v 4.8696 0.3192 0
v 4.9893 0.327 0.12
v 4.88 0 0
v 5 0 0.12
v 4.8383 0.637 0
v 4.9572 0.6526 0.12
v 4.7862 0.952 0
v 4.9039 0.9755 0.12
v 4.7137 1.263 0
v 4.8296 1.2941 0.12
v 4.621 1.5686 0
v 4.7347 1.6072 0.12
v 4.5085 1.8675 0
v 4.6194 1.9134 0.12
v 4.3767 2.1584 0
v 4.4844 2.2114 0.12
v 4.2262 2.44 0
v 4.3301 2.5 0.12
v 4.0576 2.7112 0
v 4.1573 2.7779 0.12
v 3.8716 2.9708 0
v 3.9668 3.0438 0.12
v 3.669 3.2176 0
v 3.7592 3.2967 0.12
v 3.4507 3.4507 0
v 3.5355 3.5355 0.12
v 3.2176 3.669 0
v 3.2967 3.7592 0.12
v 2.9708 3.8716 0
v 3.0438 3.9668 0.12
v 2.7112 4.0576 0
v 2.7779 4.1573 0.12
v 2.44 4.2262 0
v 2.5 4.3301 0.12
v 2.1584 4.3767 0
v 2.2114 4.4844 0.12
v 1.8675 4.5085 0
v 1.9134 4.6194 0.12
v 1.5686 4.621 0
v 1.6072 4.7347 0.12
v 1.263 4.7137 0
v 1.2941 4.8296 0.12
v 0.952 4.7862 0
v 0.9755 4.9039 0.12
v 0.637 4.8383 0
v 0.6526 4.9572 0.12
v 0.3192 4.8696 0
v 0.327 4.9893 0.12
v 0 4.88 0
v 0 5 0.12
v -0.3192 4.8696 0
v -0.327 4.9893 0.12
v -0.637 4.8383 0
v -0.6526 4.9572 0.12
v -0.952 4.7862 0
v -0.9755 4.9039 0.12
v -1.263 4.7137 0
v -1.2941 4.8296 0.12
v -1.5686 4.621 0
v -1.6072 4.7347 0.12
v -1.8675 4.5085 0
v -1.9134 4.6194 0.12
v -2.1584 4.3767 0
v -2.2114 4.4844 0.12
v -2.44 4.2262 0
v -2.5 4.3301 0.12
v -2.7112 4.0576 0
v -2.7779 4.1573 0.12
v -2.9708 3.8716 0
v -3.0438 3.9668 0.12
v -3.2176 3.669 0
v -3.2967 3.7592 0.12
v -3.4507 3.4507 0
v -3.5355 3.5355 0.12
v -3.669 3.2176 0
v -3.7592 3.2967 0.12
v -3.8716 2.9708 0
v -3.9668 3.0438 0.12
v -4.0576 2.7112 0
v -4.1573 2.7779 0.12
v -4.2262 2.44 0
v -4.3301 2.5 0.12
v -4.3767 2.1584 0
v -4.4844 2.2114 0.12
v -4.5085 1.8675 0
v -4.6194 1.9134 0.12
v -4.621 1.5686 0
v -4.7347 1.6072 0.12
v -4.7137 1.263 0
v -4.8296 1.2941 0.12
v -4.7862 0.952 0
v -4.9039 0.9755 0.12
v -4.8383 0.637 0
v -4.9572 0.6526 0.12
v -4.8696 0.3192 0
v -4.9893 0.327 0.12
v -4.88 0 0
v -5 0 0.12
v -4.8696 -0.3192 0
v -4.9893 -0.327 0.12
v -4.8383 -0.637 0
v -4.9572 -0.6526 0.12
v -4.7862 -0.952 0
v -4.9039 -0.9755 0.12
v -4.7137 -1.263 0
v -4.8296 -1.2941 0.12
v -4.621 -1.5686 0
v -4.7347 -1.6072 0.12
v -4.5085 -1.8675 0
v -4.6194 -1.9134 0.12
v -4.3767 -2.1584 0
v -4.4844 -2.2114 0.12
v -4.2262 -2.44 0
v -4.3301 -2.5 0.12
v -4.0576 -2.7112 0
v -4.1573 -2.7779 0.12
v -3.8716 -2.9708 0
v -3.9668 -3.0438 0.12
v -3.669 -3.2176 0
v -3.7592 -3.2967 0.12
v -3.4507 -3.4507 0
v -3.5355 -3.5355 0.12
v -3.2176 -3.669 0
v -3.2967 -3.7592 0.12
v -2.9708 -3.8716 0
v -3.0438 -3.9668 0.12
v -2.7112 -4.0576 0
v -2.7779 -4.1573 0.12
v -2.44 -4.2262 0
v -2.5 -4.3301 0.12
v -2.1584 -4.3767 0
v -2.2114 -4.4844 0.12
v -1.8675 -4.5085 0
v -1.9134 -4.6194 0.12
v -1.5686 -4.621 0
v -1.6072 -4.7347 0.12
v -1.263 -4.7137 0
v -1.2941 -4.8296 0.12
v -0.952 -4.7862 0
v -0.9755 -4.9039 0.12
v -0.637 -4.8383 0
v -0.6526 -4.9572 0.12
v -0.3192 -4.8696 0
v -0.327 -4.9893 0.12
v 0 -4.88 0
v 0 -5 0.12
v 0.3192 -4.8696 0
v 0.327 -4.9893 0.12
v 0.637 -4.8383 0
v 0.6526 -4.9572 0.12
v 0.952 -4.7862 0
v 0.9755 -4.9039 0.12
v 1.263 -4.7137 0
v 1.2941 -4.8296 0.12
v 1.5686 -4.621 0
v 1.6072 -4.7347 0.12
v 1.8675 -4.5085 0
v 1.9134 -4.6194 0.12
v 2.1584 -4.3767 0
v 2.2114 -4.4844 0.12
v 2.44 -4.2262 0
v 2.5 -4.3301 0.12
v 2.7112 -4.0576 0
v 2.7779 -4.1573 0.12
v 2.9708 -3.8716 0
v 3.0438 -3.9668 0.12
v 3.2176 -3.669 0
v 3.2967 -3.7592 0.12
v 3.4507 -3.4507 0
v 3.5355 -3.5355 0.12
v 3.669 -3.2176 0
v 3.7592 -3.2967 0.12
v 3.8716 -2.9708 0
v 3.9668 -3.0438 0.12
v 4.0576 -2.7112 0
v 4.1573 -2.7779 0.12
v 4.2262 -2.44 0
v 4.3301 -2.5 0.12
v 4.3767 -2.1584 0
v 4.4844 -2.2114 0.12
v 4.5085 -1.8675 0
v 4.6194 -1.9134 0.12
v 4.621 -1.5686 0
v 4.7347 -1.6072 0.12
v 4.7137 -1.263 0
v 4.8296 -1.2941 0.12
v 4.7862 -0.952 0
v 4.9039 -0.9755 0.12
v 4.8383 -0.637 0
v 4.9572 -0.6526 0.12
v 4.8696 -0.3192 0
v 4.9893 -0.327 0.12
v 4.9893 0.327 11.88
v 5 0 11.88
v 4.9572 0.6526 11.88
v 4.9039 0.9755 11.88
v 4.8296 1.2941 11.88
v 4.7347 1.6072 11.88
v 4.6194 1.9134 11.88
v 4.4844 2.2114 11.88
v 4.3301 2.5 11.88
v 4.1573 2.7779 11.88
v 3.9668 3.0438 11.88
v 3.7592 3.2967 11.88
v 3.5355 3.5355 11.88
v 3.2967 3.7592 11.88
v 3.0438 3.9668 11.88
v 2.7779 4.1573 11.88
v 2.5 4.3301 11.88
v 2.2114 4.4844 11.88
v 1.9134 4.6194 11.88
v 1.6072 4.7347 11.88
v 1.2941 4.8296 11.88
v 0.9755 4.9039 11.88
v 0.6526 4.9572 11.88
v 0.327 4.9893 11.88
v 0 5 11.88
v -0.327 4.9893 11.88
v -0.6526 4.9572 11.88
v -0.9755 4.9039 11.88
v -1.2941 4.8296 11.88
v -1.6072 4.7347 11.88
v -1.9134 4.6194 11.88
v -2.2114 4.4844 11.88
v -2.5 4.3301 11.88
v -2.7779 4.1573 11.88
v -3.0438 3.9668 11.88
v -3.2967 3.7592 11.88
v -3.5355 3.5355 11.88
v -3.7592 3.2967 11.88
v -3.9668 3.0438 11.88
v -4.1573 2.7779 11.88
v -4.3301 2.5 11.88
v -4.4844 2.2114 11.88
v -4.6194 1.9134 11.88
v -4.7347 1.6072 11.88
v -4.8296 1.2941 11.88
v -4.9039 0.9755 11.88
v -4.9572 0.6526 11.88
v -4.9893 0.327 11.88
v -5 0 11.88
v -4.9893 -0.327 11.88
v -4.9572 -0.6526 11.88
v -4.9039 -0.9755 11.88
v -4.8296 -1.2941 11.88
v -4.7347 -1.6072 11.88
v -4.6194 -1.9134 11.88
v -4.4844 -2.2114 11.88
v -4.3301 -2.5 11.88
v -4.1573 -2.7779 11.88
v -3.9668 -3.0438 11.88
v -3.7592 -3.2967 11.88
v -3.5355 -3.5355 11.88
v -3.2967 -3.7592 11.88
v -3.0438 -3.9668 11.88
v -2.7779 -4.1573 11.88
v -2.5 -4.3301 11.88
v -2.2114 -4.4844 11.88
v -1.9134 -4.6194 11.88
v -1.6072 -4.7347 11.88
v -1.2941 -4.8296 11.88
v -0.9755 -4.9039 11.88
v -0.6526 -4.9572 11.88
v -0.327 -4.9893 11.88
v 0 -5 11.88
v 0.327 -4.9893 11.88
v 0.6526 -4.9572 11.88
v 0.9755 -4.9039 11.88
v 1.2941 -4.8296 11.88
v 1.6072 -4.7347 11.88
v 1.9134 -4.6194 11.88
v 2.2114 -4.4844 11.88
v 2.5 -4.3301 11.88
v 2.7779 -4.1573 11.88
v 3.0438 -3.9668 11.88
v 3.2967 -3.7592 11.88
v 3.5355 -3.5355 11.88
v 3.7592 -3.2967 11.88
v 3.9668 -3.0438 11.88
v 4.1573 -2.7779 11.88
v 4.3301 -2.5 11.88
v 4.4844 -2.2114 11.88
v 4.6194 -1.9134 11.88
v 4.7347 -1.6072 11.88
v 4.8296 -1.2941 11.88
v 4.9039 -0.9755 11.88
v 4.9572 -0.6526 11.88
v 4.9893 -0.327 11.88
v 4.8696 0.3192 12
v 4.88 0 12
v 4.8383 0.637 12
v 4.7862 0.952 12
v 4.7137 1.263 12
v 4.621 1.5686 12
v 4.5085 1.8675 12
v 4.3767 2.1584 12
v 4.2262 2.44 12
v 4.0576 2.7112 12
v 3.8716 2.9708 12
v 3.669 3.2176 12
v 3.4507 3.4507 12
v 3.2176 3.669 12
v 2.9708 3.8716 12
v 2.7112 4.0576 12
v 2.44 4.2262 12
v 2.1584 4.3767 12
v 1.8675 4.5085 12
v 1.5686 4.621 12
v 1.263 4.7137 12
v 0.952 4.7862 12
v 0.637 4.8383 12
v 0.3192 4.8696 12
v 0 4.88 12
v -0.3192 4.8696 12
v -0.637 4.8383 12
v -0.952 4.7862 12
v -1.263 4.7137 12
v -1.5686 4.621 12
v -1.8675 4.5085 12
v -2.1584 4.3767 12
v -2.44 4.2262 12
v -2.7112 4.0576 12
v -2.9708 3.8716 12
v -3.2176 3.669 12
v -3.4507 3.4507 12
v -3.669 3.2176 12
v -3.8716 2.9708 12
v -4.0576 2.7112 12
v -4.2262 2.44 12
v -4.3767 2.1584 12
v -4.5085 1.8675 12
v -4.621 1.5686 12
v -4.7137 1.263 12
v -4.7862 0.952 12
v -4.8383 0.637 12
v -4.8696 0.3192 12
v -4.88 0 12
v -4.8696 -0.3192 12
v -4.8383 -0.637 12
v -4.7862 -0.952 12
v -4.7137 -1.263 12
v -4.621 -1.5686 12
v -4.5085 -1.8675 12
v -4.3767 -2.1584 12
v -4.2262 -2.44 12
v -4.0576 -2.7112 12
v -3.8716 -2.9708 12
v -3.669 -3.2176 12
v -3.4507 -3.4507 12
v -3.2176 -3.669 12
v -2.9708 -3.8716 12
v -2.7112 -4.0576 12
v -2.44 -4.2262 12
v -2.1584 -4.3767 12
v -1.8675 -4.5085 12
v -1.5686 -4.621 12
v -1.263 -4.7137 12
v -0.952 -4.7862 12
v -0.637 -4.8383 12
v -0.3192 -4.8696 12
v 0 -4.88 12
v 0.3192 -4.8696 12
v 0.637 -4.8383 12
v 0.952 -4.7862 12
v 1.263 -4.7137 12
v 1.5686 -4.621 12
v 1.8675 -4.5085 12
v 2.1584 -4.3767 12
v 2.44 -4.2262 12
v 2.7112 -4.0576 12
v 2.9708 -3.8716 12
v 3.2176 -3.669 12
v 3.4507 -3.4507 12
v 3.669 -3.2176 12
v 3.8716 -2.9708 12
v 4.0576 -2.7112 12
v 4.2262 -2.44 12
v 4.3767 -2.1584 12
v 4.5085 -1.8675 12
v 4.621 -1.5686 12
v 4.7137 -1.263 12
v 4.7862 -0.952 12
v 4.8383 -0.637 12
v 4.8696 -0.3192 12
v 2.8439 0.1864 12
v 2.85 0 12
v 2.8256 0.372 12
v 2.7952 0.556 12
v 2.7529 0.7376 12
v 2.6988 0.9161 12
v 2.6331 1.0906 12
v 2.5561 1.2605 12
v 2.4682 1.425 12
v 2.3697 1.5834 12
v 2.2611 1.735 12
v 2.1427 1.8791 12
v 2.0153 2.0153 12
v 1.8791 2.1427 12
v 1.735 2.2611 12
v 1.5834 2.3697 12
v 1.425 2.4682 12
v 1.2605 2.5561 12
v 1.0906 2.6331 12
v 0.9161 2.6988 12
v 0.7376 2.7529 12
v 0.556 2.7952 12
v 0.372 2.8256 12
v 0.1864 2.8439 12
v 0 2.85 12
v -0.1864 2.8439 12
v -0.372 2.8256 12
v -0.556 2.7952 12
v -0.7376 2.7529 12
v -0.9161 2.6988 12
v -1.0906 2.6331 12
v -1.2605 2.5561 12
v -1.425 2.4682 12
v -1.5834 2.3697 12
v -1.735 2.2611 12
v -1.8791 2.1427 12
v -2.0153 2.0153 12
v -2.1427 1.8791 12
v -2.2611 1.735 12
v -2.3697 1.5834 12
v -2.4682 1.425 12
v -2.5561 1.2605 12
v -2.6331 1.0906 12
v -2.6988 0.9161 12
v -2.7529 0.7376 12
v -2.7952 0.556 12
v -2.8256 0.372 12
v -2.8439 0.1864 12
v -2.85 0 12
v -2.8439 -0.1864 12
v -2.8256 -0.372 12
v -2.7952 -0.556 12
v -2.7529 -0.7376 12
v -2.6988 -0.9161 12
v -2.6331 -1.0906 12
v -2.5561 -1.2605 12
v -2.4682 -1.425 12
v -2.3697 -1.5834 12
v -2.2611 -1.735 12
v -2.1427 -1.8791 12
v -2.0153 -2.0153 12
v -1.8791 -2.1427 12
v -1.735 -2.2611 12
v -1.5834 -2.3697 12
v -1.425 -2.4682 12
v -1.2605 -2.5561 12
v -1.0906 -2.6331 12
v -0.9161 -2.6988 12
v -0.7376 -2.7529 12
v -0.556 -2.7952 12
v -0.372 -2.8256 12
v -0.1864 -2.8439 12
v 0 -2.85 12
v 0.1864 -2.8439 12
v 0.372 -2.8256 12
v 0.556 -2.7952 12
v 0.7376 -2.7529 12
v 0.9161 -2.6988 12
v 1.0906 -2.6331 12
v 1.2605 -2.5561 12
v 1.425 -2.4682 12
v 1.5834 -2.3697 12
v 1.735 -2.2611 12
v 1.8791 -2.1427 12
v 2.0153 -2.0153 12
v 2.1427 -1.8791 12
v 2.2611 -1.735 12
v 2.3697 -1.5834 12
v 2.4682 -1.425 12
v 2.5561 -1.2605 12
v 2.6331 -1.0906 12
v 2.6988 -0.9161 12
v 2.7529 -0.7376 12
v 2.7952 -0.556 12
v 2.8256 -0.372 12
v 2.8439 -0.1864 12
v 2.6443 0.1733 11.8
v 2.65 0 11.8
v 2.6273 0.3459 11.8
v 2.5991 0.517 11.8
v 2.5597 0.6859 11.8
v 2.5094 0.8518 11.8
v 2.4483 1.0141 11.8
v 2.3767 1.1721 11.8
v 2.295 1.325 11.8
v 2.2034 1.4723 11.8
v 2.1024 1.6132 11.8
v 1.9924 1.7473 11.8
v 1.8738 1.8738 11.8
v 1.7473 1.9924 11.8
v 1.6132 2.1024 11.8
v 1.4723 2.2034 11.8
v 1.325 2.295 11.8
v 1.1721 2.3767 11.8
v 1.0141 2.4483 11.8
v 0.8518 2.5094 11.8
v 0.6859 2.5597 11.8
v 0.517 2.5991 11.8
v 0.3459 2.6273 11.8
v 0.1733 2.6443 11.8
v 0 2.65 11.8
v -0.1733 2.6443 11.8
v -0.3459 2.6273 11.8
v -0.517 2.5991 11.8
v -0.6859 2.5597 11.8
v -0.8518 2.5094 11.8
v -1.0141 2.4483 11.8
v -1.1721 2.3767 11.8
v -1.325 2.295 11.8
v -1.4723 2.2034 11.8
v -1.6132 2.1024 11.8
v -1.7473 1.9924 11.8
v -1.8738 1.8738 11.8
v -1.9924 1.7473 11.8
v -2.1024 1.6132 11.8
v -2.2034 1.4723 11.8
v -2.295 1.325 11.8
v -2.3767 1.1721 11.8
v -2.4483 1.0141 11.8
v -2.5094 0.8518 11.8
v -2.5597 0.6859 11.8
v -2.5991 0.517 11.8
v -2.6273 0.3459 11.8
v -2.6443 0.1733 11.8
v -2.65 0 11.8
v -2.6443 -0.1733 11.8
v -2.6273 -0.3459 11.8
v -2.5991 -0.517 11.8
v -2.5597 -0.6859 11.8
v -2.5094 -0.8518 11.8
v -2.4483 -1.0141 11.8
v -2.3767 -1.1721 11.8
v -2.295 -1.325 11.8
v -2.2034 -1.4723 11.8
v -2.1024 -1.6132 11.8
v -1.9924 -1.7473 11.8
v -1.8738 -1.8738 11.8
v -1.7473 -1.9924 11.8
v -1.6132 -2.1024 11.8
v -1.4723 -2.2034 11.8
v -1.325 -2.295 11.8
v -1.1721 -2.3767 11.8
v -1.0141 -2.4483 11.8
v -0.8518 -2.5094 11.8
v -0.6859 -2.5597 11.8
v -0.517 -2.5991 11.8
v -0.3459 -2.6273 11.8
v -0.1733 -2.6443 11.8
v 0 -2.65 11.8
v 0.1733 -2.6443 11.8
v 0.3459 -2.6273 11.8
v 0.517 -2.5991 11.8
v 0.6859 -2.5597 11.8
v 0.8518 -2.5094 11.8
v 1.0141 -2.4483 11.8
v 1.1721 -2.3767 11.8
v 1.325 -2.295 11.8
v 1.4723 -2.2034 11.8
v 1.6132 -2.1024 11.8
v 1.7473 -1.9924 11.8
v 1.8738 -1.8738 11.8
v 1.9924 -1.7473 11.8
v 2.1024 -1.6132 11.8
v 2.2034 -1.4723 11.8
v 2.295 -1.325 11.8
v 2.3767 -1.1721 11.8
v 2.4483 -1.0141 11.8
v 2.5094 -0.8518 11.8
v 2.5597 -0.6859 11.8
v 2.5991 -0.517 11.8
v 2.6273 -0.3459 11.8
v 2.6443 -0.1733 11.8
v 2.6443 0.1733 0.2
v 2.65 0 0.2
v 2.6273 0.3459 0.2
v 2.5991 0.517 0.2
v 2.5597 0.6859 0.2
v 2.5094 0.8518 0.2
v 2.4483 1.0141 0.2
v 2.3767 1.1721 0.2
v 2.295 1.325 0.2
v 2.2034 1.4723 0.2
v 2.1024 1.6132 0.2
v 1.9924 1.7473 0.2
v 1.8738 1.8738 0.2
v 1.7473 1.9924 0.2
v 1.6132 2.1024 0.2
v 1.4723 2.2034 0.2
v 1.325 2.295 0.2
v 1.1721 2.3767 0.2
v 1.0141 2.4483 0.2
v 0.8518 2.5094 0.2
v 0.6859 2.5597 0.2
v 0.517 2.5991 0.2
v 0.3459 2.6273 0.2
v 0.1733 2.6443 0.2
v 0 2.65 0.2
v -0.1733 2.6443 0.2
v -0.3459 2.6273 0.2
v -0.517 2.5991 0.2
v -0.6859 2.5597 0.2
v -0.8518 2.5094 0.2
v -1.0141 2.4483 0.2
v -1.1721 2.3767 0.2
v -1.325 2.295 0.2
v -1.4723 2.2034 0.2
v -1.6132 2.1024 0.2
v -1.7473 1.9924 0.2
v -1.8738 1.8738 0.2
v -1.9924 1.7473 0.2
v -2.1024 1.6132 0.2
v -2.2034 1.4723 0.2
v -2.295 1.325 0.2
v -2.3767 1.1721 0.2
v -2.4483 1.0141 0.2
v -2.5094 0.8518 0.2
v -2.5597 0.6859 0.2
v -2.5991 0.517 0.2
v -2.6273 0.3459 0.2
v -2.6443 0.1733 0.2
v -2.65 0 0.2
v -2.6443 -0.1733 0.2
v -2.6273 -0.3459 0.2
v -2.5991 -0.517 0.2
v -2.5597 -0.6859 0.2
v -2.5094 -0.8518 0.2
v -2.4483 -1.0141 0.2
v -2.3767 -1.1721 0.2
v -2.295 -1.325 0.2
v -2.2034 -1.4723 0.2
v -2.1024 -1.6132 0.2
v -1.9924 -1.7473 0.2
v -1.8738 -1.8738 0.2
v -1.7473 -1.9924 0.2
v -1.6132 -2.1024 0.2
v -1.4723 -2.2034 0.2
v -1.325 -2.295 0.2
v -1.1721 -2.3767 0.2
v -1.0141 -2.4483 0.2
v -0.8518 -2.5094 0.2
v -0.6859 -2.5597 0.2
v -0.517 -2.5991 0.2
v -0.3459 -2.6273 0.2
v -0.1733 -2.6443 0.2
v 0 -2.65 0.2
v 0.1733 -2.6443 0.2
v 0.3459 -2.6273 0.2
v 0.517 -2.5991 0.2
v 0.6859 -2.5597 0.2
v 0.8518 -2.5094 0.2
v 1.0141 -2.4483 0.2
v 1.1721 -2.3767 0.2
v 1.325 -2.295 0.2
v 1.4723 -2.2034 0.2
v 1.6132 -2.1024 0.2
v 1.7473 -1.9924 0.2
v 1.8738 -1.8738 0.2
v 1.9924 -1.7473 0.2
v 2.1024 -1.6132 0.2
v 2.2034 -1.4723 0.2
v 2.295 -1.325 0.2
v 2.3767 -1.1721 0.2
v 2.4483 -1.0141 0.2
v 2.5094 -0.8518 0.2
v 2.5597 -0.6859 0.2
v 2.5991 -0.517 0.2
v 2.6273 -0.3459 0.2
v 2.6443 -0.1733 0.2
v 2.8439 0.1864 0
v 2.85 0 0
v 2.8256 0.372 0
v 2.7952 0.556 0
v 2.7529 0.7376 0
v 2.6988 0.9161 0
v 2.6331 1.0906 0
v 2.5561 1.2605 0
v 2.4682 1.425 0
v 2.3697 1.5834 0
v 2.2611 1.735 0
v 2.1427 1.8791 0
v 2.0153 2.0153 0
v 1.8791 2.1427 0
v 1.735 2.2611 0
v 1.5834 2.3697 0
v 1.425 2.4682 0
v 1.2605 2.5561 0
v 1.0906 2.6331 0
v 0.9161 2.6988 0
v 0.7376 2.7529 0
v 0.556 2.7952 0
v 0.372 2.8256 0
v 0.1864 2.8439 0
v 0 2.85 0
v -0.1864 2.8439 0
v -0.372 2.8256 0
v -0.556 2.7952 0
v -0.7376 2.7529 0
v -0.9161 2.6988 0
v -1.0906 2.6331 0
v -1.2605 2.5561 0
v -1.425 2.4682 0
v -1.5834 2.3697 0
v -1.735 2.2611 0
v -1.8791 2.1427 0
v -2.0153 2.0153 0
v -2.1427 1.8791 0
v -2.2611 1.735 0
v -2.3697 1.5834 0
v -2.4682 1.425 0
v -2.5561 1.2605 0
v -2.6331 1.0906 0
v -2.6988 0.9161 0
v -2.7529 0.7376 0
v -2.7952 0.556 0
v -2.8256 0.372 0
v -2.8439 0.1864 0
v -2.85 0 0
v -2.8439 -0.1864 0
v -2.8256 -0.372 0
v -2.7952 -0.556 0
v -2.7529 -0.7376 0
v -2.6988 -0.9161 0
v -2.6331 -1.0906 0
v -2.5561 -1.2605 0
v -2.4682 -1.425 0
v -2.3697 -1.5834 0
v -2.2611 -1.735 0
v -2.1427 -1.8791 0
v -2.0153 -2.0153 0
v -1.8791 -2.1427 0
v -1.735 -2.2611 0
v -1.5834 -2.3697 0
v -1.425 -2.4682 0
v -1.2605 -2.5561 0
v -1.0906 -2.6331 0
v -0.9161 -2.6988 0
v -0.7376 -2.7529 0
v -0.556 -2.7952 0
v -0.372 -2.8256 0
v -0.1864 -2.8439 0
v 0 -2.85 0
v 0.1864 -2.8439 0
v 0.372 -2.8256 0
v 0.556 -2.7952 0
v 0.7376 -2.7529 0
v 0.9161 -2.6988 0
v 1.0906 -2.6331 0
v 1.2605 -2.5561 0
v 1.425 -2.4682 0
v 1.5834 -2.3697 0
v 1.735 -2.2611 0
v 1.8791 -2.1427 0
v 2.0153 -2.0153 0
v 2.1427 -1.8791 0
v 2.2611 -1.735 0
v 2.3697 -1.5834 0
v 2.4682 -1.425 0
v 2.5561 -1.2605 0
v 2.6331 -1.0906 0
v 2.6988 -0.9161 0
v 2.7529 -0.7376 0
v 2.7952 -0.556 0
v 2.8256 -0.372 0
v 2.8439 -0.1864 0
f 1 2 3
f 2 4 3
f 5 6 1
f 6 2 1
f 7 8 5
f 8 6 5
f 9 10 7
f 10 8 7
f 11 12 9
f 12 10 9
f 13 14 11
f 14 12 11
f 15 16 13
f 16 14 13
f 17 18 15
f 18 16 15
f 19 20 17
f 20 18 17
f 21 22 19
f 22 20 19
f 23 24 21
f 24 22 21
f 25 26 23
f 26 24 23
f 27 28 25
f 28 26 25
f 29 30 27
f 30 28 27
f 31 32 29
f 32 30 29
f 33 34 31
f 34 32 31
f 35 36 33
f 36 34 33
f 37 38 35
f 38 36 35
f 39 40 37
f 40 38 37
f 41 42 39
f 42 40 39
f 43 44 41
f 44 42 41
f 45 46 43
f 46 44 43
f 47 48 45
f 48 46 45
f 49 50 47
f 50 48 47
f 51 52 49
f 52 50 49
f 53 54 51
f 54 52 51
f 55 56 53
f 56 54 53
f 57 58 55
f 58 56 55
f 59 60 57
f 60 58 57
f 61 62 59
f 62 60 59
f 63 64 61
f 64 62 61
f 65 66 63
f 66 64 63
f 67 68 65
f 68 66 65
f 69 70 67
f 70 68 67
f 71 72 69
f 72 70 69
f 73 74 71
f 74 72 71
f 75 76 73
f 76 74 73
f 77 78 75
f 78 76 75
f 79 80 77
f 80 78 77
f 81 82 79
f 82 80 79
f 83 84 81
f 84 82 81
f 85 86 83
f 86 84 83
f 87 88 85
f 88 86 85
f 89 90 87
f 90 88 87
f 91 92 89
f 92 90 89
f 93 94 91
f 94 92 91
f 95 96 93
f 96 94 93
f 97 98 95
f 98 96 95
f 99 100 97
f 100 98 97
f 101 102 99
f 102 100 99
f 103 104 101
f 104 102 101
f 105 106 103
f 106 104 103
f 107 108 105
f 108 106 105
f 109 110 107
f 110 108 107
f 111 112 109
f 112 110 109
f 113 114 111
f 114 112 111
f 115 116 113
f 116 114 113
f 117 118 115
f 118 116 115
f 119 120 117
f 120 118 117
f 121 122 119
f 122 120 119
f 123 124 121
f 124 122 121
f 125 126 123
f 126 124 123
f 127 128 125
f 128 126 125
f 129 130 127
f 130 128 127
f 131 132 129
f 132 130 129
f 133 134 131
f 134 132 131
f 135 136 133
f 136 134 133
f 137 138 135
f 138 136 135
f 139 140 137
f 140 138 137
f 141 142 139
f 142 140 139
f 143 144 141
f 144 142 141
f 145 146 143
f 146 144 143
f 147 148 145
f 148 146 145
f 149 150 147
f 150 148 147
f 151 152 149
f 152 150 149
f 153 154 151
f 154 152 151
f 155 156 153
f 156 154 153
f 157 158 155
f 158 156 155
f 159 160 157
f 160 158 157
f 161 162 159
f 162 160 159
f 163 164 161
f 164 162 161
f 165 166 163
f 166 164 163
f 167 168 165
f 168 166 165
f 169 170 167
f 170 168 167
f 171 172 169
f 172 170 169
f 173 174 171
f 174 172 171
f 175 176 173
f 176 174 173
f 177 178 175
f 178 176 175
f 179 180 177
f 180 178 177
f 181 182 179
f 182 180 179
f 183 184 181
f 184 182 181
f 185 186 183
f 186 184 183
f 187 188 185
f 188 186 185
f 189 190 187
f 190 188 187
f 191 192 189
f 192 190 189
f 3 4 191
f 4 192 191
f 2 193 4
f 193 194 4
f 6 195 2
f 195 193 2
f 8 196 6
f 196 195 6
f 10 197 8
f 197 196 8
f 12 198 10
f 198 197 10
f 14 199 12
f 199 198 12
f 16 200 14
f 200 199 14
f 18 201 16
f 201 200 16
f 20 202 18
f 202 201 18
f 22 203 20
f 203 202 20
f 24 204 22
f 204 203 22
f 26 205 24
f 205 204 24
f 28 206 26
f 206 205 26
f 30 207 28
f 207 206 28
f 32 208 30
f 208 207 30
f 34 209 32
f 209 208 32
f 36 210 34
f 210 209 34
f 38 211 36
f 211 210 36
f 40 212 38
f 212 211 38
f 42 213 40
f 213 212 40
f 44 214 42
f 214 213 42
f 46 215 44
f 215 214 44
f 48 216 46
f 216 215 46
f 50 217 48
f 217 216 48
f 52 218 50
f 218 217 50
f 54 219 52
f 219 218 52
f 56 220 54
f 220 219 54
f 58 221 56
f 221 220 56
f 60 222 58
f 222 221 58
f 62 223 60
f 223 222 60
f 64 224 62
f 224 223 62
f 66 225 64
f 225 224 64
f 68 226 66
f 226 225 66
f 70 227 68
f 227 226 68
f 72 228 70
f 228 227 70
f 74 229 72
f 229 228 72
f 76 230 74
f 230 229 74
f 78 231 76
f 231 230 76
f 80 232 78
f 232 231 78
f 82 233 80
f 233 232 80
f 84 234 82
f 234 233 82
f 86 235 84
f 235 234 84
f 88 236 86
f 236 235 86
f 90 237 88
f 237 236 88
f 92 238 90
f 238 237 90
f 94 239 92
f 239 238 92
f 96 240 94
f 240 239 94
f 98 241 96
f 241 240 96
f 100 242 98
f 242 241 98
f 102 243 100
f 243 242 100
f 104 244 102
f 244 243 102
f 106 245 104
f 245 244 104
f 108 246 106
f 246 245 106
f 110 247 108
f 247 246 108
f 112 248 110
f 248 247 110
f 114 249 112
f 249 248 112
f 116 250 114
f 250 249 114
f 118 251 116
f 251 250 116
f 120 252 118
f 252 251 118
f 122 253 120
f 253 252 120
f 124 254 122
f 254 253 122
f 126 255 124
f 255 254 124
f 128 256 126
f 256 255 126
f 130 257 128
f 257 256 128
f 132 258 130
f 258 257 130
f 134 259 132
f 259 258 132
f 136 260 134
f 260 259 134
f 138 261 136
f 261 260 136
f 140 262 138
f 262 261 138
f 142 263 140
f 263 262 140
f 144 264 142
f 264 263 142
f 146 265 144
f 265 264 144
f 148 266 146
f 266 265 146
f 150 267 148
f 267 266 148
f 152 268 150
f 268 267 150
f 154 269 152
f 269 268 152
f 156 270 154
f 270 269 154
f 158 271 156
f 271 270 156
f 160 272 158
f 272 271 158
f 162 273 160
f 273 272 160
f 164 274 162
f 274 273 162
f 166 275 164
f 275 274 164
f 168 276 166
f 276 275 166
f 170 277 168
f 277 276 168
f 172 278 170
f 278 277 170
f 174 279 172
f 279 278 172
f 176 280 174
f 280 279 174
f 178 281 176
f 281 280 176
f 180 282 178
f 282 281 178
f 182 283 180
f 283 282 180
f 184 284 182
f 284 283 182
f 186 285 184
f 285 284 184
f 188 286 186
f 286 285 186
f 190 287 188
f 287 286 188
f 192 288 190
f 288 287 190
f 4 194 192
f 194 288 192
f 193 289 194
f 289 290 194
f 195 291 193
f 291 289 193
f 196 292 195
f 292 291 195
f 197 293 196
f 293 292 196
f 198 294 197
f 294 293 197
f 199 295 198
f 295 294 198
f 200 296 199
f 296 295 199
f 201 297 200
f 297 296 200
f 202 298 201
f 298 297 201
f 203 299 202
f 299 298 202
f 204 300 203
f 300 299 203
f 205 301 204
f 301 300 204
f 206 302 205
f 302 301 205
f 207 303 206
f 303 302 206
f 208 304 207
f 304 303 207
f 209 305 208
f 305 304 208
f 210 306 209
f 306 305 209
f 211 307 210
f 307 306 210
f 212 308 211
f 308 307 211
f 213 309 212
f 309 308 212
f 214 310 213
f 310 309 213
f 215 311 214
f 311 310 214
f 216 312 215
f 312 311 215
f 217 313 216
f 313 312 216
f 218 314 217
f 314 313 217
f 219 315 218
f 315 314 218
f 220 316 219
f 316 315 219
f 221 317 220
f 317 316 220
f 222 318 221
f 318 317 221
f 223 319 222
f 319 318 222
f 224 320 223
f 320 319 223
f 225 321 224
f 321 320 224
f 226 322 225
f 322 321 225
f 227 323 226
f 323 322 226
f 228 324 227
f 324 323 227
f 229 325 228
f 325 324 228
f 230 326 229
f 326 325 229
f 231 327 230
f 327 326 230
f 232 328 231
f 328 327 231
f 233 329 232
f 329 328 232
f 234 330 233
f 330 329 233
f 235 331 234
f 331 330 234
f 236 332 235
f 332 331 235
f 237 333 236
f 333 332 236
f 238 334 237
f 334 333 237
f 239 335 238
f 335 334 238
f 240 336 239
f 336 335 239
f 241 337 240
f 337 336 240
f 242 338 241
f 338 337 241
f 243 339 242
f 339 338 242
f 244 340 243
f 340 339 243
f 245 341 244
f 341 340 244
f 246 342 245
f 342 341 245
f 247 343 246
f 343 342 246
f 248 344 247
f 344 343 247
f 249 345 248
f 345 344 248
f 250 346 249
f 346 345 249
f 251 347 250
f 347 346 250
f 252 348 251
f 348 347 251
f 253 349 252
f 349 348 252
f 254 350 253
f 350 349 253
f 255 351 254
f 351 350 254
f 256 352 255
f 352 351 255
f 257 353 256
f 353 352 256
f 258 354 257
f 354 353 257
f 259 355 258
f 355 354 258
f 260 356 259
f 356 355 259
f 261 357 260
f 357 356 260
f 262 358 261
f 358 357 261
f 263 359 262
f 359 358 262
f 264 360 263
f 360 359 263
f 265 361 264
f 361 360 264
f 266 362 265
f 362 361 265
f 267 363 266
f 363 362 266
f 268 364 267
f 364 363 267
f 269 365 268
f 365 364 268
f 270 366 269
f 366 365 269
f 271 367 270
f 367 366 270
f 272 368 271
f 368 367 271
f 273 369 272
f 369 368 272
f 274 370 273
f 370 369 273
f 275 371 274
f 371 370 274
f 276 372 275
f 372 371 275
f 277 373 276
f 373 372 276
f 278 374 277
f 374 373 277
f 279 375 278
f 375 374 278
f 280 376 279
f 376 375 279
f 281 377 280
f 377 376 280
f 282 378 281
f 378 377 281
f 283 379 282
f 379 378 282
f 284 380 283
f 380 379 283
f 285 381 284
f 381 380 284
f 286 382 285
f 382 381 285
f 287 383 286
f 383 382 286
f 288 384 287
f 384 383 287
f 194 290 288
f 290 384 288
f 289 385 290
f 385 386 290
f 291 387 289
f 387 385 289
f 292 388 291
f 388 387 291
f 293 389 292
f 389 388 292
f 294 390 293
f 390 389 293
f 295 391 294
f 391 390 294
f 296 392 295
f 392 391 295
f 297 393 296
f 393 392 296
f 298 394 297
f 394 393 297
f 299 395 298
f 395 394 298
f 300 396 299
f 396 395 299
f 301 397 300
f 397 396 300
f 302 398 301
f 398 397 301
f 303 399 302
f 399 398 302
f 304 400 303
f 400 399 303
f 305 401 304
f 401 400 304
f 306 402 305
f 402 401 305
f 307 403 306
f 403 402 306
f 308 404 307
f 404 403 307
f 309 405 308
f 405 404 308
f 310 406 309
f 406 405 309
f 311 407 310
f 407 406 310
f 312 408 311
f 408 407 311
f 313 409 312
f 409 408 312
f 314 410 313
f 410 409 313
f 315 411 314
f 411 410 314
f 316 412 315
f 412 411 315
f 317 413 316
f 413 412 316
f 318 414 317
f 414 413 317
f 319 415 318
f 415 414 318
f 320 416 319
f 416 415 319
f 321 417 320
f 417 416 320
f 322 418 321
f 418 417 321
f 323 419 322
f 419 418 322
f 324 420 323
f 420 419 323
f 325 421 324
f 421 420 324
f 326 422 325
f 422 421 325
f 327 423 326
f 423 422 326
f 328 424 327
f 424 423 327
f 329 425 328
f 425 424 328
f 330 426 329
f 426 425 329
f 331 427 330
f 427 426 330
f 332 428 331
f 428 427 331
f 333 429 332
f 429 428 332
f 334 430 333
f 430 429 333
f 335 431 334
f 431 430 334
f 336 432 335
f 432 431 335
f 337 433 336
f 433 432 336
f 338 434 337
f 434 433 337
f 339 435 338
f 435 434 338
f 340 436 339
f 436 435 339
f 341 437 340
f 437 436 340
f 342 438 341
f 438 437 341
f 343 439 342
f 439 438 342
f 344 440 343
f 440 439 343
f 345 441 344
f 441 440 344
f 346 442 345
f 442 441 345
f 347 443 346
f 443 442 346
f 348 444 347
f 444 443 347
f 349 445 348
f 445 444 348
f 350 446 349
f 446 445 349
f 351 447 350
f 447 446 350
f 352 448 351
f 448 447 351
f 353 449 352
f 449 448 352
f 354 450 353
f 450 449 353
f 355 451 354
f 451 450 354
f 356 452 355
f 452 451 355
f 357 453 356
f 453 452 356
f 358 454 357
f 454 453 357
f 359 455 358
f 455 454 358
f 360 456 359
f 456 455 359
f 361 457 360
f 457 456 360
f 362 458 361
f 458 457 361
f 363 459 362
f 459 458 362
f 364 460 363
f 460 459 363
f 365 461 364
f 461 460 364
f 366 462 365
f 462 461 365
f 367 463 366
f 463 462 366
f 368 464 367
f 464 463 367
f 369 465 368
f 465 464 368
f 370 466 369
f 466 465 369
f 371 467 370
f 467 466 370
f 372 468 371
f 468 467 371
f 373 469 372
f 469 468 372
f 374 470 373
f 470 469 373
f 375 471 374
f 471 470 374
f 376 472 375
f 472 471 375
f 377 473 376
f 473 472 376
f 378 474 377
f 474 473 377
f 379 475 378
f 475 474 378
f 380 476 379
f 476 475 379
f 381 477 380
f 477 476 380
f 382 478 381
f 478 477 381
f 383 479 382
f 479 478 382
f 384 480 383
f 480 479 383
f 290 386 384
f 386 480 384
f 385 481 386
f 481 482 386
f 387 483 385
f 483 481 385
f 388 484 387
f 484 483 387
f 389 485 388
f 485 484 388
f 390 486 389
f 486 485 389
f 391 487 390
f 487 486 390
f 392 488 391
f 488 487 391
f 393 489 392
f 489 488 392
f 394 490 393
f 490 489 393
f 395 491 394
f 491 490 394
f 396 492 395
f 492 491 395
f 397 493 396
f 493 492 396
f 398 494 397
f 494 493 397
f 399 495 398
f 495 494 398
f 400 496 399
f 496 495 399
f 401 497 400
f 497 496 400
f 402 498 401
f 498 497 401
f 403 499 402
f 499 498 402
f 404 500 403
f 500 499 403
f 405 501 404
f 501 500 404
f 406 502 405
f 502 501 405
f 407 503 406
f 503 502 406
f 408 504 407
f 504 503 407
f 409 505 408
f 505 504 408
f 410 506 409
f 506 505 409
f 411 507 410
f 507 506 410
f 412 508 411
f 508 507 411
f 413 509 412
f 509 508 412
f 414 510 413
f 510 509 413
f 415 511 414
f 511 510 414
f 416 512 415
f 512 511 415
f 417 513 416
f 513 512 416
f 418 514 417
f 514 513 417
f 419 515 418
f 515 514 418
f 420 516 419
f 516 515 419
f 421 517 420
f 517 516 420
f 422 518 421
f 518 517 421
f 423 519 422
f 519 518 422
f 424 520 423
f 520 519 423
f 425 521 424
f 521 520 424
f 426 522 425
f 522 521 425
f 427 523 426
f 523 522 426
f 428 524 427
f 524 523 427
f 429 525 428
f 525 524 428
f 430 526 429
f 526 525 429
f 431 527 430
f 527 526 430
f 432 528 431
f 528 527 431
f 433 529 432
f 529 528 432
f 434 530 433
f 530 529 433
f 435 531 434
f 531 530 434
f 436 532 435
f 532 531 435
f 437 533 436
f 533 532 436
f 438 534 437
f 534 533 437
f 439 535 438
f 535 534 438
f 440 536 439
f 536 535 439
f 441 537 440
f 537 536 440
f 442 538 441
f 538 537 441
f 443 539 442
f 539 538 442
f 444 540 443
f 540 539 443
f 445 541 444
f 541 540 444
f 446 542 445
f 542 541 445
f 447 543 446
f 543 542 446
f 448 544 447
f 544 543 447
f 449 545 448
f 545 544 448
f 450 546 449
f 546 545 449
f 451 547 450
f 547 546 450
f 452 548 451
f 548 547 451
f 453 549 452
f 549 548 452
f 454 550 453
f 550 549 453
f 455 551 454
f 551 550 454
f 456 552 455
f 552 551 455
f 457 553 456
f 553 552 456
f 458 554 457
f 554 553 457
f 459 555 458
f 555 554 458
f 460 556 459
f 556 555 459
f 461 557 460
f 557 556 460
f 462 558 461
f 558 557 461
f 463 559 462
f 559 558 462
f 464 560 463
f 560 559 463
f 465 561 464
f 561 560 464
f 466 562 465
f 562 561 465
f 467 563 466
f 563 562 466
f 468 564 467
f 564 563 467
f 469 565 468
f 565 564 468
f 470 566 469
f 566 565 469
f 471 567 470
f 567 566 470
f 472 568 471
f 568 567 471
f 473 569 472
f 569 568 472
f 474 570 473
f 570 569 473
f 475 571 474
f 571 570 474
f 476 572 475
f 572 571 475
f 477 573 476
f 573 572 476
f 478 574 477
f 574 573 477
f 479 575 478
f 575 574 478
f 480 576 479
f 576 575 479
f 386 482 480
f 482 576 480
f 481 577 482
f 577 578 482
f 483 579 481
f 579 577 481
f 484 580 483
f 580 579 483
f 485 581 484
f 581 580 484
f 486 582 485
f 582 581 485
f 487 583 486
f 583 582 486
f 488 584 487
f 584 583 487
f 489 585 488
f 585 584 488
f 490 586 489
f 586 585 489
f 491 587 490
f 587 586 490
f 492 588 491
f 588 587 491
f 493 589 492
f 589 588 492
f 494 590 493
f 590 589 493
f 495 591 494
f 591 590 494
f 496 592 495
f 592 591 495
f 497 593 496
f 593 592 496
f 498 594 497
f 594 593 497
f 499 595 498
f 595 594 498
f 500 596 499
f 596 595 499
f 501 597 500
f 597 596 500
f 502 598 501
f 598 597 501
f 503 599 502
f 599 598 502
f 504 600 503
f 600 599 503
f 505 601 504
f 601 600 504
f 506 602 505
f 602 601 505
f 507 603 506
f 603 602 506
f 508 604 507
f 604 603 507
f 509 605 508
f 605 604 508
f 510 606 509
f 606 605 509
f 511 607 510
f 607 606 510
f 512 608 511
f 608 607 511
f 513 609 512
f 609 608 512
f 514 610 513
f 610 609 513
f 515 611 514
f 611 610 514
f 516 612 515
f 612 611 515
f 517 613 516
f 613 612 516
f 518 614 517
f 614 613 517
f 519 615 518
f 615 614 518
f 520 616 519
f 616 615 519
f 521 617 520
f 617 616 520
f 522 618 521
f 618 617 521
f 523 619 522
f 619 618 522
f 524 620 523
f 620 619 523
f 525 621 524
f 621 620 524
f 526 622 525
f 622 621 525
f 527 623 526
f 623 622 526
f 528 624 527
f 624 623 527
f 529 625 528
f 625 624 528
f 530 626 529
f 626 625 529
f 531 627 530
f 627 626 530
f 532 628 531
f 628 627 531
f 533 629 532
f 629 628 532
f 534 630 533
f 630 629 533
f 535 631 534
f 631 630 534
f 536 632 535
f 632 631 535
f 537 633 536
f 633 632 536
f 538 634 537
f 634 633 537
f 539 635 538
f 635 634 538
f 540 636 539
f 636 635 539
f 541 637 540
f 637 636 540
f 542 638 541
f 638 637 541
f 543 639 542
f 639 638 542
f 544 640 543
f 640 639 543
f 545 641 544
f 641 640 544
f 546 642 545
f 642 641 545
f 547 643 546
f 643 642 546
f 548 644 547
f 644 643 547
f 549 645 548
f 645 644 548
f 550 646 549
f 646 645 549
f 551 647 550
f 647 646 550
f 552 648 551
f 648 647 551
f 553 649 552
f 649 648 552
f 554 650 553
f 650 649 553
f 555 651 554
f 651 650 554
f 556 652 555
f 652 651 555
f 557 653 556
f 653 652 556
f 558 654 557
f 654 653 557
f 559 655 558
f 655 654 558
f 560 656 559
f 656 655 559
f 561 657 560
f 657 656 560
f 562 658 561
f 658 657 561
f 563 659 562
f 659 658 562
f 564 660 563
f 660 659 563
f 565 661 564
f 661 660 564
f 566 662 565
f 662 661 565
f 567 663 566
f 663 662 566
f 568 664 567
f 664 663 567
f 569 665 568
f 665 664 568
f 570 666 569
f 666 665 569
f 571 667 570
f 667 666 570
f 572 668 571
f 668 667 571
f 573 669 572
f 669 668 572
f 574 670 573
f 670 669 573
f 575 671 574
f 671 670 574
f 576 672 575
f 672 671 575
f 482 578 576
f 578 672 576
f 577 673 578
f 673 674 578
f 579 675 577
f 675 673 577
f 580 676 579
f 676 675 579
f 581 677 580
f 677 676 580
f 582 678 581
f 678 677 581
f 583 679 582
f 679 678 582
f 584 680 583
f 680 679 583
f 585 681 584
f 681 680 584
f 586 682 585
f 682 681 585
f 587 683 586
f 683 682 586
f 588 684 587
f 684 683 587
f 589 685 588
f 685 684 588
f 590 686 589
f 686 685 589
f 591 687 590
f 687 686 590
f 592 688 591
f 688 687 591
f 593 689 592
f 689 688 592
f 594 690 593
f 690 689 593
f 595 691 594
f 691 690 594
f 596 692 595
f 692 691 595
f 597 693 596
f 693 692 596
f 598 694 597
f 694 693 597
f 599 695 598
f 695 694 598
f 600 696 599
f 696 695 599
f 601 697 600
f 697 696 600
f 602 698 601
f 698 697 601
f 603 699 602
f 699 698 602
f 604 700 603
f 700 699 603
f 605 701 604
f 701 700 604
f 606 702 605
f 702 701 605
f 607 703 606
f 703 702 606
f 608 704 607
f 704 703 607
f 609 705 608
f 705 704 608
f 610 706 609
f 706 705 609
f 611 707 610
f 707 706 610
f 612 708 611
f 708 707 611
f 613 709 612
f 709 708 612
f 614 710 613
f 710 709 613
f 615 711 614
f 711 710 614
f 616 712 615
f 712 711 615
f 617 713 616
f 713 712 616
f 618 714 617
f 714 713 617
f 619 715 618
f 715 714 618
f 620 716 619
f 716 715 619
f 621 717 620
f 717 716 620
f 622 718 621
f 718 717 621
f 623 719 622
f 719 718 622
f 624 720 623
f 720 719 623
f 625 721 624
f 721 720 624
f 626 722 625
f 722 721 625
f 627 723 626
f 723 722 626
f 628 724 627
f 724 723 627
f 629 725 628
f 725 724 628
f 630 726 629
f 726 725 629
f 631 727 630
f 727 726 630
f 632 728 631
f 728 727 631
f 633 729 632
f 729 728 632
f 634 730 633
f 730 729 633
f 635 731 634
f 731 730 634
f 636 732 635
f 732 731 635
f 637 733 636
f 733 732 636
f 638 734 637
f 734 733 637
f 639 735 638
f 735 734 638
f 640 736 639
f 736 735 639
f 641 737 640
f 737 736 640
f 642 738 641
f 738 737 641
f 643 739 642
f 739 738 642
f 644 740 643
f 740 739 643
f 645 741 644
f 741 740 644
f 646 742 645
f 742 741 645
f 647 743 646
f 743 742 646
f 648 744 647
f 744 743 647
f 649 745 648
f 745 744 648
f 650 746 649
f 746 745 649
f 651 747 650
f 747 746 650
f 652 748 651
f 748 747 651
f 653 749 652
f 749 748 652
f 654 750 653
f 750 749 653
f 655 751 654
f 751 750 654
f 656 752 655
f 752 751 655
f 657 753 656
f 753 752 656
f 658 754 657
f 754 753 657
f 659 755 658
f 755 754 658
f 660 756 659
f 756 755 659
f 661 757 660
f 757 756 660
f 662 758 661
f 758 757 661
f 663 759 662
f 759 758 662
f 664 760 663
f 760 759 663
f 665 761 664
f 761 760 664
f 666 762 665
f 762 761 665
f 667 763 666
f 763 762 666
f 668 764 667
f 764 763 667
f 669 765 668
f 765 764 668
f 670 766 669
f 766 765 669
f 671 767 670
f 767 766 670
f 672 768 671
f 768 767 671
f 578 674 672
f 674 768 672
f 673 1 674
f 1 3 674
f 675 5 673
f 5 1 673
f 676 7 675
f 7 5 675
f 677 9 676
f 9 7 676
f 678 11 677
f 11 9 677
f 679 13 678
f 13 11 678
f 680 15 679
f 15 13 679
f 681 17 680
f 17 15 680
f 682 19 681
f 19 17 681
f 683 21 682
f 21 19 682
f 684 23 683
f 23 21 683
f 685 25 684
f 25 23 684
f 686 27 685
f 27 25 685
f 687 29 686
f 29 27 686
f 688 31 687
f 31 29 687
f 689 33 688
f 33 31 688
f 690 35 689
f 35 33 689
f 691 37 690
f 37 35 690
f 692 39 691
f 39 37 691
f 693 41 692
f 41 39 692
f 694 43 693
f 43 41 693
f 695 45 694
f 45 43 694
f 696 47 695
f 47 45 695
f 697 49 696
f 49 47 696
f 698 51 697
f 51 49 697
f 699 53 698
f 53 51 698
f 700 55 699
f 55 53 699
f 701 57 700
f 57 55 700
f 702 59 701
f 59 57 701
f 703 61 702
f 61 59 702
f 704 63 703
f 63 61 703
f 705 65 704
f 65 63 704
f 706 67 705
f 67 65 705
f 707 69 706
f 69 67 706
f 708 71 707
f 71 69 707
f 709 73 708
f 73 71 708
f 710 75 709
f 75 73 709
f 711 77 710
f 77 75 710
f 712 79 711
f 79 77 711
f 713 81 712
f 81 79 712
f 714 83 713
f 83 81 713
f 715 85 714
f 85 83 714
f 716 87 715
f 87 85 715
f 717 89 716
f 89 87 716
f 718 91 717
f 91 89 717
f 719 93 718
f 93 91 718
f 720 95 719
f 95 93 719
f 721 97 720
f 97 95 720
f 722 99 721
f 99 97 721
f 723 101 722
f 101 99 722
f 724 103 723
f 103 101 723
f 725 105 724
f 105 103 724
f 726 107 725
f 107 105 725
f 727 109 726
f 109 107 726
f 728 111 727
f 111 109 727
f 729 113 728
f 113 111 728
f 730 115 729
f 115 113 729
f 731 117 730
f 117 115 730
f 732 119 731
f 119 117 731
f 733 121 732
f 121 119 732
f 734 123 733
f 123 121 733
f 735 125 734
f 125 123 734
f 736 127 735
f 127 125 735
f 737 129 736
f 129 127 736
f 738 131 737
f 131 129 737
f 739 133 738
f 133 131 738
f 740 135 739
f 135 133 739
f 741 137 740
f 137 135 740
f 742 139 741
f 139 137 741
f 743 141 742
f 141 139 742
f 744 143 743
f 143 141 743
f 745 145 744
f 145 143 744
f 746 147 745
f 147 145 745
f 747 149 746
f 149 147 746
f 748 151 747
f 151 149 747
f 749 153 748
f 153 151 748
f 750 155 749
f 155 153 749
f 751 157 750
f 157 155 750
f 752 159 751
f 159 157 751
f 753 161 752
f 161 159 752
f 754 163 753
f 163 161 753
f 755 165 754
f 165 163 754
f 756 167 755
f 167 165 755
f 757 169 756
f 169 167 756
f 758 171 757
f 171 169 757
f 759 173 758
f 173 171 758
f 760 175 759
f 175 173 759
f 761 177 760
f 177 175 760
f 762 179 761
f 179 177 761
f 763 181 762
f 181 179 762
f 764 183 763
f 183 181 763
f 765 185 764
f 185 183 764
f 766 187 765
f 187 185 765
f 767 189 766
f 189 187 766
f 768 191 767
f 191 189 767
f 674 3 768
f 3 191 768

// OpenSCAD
// OOMP generic catalogue model; units: mm.
// Stud length is additional to body depth. Tapping depths are model assumptions.
variant = "full"; // [full, display]
family = "spacer";
connection_type = "plain";
depth_mm = 12;
stud_length_mm = 0;
tapped_depth_mm = 0;
bore_mm = 5.3;
outer_diameter_mm = 10;
across_flats_mm = 6;
thread_nominal_diameter_mm = 3;
thread_pitch_mm = 0.5;
edge_chamfer_mm = 0.12;
mouth_chamfer_mm = 0.2;
angular_segments = 96;
samples_per_pitch = 16;

// Boundary travels up the outside, then down any tapped/plain bore.
// Equal-height rings at shoulders form the annular shoulder faces.
n = angular_segments;
threaded = family == "standoff";
has_stud = connection_type == "stud_to_tapped" || connection_type == "stud_to_stud";
two_studs = connection_type == "stud_to_stud";
through = !threaded || connection_type == "tapped_to_tapped";
pitch = thread_pitch_mm;
diameter = threaded ? thread_nominal_diameter_mm : bore_mm;
minor = diameter - 5*sqrt(3)*pitch/8;
transition = mouth_chamfer_mm + (threaded ? 5*sqrt(3)*pitch/16 : 0);
tip_chamfer = mouth_chamfer_mm + 17*sqrt(3)*pitch/48;
function sorted(v) = len(v)<=1 ? v : let(p=v[0])
    concat(sorted([for(x=v) if(x<p-1e-8) x]), [p], sorted([for(x=v) if(x>p+1e-8) x]));
function reverse(v) = [for(i=[len(v)-1:-1:0]) v[i]];
function theta(i) = i*360/n;
function fract(x) = x-floor(x);
function phase_distance(i,z) = abs(fract(z/pitch-theta(i)/360+0.5)-0.5);
function thread_r(i,z) = minor/2 + min(5*sqrt(3)*pitch/16,
    max(0,(phase_distance(i,z)-0.125)*pitch*sqrt(3)));
function stud_r(i,z,tip) = min(diameter/2 - (variant=="full" ?
    min(17*sqrt(3)*pitch/48,max(0,(phase_distance(i,z)-0.0625)*pitch*sqrt(3))) : 0),
    diameter/2-tip_chamfer+abs(z-tip));
function body_r(i,z) = (threaded ? across_flats_mm/2/cos(theta(i)%60-30) : outer_diameter_mm/2)
    - max(0,edge_chamfer_mm-min(z,depth_mm-z));
function bore_r(i,z) = max(threaded ? (variant=="full" ? thread_r(i,z) : minor/2) : diameter/2,
    diameter/2+mouth_chamfer_mm-(through ? min(z,depth_mm-z) : depth_mm-z));
function stud_z(a,b,tip) = let(count=variant=="full" ? ceil(stud_length_mm/pitch*samples_per_pitch) : 1)
    sorted(concat([for(i=[0:count]) a+(b-a)*i/count], [tip==a ? tip+tip_chamfer : tip-tip_chamfer]));
body_z = sorted([0,edge_chamfer_mm,depth_mm-edge_chamfer_mm,depth_mm]);
low = through ? 0 : depth_mm-tapped_depth_mm;
count = threaded && variant=="full" ? ceil((depth_mm-low)/pitch*samples_per_pitch) : 1;
bore_z = two_studs ? [] : reverse(sorted(concat(
    [for(i=[0:count]) low+(depth_mm-low)*i/count],
    [depth_mm-mouth_chamfer_mm,depth_mm-transition],
    through ? [mouth_chamfer_mm,transition] : [])));
// Ring descriptors: [height, kind, tip]. Kind: 0 body, 1 stud, 2 bore.
rings = concat(
    has_stud ? [for(z=stud_z(-stud_length_mm,0,-stud_length_mm)) [z,1,-stud_length_mm]] : [],
    [for(z=body_z) [z,0,0]],
    two_studs ? [for(z=stud_z(depth_mm,depth_mm+stud_length_mm,depth_mm+stud_length_mm)) [z,1,depth_mm+stud_length_mm]] : [],
    [for(z=bore_z) [z,2,0]]);
function radius(i,ring) = ring[1]==0 ? body_r(i,ring[0]) :
    ring[1]==1 ? stud_r(i,ring[0],ring[2]) : bore_r(i,ring[0]);
points = concat([for(ring=rings) for(i=[0:n-1])
    [radius(i,ring)*cos(theta(i)),radius(i,ring)*sin(theta(i)),ring[0]]],
    through ? [] : [[0,0,rings[0][0]],[0,0,rings[len(rings)-1][0]]]);
center = len(rings)*n;
last = (len(rings)-1)*n;
// OpenSCAD winding is opposite to STL winding.
faces = concat(
    [for(j=[0:len(rings)-(through ? 1 : 2)]) for(i=[0:n-1]) each
        let(a=j*n+i,b=j*n+(i+1)%n,c=((j+1)%len(rings))*n+(i+1)%n,d=((j+1)%len(rings))*n+i)
        [[a,c,b],[a,d,c]]],
    through ? [] : [for(i=[0:n-1]) each let(k=(i+1)%n)
        [[center,i,k],[center+1,last+k,last+i]]]);
assert(family=="spacer" || family=="standoff");
assert(!threaded || connection_type=="tapped_to_tapped" || has_stud);
assert(depth_mm>0 && diameter>0 && pitch>0);
assert(variant=="full" || variant=="display");
assert(n>=24 && n%12==0 && samples_per_pitch>=8);
assert(mouth_chamfer_mm>0 && mouth_chamfer_mm<depth_mm/2);
assert(edge_chamfer_mm>=0 && edge_chamfer_mm<depth_mm/2);
assert(diameter+4*max(mouth_chamfer_mm,edge_chamfer_mm) < (threaded ? across_flats_mm : outer_diameter_mm));
assert(!has_stud || stud_length_mm>2*mouth_chamfer_mm);
assert(!through || !threaded || 2*transition<depth_mm);
assert(connection_type!="stud_to_tapped" || (tapped_depth_mm>transition && tapped_depth_mm<depth_mm));
color([0.86,0.85,0.81]) polyhedron(points=points,faces=faces,convexity=20);
